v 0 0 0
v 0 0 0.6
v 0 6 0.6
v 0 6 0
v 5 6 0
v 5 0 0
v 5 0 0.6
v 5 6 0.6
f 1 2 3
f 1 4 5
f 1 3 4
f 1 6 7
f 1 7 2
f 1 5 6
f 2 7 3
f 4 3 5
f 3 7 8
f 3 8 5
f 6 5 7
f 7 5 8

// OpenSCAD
/* Warning, this is a very basic generator with a lot of approximation 
input data : [XFLGA, 5UX, 5x6x0.6mm, 48, , A, C04-00166A]
generated by com.zoubworld.electronics.cad.model3d.Basic
Date : Sun Feb 15 10:50:48 CET 2026
*/

//body
color("black")
translate([0,0,0])
cube([5.0,6.0,0.6], center=false);
